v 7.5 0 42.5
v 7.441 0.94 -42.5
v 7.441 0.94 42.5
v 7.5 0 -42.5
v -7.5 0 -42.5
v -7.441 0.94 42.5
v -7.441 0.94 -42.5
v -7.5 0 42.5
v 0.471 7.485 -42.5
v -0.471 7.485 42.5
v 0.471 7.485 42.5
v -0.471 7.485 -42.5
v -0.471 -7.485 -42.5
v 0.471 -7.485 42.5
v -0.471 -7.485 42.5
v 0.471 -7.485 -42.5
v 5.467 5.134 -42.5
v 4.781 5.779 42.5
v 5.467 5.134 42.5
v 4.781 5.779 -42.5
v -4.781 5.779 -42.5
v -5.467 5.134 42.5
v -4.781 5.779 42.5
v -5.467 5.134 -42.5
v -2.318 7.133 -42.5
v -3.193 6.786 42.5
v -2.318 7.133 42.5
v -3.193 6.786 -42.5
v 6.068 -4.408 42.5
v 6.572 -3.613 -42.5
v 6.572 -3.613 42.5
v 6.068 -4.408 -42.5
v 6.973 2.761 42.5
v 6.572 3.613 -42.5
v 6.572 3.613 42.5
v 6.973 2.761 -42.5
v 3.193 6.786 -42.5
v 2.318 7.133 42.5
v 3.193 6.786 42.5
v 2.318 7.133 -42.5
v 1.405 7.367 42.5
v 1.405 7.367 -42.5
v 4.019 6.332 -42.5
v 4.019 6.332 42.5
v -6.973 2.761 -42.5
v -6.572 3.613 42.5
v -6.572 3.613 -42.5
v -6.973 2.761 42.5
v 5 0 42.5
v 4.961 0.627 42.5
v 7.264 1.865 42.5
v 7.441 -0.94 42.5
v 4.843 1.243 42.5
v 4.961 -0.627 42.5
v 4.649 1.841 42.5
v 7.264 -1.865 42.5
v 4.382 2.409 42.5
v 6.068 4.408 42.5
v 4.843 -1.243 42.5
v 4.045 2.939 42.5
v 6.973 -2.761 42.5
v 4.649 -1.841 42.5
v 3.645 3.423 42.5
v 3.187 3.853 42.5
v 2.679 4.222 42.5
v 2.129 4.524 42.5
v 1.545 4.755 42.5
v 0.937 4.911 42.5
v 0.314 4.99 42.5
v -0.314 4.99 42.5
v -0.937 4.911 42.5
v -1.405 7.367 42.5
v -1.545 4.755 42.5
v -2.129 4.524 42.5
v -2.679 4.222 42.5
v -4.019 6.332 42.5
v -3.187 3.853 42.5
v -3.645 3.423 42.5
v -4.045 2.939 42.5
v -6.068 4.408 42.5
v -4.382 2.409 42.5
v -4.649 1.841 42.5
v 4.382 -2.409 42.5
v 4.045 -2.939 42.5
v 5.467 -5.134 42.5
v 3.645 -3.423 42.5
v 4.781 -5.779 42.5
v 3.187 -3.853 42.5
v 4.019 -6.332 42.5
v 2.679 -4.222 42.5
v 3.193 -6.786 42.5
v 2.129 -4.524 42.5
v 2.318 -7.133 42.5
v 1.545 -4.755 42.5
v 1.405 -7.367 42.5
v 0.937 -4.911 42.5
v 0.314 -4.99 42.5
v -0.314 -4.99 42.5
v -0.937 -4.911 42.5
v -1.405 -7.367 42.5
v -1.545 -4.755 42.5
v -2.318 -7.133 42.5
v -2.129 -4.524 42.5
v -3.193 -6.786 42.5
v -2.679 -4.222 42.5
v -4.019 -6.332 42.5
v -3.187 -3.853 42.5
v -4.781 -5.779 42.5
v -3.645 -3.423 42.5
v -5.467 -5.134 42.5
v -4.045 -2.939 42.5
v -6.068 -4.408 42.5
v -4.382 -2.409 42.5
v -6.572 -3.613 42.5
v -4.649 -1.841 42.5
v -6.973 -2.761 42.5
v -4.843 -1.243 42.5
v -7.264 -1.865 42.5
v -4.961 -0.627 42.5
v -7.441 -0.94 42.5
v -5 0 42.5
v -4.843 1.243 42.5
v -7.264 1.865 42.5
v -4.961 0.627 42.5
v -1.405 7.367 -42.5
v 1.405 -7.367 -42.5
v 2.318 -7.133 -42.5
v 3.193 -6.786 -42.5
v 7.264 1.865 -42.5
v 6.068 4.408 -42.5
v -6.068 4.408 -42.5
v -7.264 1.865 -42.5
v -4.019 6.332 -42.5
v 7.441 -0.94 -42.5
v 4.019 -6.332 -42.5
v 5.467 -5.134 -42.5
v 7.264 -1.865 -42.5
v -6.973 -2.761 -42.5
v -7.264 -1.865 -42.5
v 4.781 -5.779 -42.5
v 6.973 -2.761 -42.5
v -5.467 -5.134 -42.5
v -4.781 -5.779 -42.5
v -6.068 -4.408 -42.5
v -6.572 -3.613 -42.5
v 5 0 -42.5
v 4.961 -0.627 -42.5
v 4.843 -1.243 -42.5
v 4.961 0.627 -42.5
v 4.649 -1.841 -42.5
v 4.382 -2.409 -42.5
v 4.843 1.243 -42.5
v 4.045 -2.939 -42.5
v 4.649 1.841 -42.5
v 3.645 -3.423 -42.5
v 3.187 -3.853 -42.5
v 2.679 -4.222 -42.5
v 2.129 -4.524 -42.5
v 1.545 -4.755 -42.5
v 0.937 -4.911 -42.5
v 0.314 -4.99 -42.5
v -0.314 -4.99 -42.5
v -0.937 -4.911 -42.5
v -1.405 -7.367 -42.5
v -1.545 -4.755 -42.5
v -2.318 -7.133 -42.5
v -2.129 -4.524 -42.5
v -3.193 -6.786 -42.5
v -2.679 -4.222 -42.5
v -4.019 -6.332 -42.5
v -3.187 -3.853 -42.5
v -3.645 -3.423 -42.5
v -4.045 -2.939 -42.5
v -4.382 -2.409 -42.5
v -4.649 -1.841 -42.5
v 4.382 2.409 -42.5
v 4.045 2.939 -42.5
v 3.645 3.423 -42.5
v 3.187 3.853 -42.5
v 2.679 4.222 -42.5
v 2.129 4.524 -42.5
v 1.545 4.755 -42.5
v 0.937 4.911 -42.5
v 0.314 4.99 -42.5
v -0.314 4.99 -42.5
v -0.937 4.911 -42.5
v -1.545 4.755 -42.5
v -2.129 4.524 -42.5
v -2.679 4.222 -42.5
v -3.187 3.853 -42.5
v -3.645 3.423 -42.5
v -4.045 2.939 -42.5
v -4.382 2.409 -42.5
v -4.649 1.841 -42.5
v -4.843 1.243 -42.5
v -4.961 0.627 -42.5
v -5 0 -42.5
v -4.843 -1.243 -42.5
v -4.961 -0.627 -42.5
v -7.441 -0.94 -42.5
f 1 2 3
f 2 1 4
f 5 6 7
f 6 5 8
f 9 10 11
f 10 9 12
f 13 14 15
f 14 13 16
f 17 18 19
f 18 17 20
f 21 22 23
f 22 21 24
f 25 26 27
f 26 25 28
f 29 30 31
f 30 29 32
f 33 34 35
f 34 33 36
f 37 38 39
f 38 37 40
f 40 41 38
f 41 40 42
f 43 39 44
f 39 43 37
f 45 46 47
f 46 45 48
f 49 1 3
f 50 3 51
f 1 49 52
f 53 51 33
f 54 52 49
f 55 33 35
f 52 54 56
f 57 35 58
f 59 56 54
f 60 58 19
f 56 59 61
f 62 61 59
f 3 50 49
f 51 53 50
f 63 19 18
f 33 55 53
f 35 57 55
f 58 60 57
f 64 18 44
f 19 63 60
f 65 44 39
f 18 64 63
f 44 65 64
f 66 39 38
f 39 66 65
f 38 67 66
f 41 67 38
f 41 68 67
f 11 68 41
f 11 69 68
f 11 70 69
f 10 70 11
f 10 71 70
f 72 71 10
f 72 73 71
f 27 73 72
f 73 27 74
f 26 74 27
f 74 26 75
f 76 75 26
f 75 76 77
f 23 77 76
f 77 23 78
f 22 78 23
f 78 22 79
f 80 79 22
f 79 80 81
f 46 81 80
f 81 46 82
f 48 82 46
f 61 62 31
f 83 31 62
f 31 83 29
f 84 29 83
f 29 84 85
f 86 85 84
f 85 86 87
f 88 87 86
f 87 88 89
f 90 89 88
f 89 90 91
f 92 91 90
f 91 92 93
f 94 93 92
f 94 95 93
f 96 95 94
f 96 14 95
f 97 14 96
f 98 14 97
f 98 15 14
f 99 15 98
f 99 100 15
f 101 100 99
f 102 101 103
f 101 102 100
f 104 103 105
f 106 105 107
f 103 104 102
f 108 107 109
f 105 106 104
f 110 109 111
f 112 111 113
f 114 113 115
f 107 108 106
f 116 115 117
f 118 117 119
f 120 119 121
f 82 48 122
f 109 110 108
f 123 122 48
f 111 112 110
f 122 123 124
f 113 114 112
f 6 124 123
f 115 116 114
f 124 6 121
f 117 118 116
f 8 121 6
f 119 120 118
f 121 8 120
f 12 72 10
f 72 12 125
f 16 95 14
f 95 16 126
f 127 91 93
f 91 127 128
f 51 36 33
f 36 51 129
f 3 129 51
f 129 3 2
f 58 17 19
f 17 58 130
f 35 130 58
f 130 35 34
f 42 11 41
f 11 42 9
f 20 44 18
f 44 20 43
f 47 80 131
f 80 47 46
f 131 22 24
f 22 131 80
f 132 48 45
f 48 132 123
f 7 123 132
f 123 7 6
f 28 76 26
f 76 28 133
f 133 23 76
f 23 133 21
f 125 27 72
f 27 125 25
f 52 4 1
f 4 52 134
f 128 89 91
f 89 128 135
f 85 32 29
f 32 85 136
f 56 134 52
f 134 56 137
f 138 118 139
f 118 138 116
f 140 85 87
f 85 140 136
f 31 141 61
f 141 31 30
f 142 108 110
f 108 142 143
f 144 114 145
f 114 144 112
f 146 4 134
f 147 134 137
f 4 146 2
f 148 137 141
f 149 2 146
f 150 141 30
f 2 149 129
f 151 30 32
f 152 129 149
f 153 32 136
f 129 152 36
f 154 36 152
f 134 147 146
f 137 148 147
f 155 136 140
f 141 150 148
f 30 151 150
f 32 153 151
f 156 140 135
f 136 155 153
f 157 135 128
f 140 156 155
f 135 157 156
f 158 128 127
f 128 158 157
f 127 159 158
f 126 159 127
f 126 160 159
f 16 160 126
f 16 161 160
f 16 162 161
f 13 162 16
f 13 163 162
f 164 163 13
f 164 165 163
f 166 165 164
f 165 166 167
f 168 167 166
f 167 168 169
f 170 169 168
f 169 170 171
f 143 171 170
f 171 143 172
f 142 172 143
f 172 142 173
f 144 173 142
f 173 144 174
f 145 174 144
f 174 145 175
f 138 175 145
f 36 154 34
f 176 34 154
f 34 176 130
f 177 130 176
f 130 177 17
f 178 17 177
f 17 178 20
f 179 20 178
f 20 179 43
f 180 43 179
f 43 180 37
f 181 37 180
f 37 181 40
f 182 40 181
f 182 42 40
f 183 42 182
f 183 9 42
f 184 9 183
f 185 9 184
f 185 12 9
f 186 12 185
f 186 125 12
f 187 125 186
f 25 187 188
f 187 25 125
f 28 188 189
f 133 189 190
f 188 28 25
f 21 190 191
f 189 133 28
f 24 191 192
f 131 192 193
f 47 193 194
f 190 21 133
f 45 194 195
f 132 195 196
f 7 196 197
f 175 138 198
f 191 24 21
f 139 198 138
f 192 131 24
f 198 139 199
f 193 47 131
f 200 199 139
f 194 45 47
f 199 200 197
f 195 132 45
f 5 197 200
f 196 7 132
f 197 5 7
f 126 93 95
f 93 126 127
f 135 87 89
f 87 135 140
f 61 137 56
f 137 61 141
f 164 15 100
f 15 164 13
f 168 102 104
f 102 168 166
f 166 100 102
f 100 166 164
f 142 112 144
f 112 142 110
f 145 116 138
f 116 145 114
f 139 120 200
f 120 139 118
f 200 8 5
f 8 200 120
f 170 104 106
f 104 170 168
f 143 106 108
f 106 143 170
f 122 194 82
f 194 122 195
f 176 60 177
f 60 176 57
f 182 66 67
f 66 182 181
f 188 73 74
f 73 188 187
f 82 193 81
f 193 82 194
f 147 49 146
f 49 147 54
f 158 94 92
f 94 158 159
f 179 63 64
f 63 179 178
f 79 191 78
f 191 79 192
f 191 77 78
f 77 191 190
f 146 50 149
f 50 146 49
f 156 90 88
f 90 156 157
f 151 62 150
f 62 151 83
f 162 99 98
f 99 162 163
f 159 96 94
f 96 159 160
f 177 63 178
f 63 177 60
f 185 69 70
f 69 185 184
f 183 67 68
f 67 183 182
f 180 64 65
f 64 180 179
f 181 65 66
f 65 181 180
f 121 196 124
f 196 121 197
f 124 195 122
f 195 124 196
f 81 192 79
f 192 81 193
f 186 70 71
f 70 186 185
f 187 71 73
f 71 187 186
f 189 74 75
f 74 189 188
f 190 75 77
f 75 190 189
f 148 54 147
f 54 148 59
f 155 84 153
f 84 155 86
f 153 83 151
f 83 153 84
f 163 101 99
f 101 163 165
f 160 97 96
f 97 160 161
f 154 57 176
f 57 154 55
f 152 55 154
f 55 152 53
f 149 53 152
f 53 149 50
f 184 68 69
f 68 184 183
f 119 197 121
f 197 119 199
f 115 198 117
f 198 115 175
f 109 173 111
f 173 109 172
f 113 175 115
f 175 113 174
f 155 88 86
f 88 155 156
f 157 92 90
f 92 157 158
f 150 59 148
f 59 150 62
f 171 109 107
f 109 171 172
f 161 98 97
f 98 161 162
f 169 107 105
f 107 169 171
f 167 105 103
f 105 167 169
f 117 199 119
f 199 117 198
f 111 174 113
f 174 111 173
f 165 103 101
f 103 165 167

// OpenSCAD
$fn = 50;


difference() {
	union() {
		translate(v = [0, 0, -42.5000000000]) {
			cylinder(h = 85, r = 7.5000000000);
		}
	}
	union() {
		translate(v = [0, 0, -100.0000000000]) {
			cylinder(h = 200, r = 5.0000000000);
		}
	}
}
